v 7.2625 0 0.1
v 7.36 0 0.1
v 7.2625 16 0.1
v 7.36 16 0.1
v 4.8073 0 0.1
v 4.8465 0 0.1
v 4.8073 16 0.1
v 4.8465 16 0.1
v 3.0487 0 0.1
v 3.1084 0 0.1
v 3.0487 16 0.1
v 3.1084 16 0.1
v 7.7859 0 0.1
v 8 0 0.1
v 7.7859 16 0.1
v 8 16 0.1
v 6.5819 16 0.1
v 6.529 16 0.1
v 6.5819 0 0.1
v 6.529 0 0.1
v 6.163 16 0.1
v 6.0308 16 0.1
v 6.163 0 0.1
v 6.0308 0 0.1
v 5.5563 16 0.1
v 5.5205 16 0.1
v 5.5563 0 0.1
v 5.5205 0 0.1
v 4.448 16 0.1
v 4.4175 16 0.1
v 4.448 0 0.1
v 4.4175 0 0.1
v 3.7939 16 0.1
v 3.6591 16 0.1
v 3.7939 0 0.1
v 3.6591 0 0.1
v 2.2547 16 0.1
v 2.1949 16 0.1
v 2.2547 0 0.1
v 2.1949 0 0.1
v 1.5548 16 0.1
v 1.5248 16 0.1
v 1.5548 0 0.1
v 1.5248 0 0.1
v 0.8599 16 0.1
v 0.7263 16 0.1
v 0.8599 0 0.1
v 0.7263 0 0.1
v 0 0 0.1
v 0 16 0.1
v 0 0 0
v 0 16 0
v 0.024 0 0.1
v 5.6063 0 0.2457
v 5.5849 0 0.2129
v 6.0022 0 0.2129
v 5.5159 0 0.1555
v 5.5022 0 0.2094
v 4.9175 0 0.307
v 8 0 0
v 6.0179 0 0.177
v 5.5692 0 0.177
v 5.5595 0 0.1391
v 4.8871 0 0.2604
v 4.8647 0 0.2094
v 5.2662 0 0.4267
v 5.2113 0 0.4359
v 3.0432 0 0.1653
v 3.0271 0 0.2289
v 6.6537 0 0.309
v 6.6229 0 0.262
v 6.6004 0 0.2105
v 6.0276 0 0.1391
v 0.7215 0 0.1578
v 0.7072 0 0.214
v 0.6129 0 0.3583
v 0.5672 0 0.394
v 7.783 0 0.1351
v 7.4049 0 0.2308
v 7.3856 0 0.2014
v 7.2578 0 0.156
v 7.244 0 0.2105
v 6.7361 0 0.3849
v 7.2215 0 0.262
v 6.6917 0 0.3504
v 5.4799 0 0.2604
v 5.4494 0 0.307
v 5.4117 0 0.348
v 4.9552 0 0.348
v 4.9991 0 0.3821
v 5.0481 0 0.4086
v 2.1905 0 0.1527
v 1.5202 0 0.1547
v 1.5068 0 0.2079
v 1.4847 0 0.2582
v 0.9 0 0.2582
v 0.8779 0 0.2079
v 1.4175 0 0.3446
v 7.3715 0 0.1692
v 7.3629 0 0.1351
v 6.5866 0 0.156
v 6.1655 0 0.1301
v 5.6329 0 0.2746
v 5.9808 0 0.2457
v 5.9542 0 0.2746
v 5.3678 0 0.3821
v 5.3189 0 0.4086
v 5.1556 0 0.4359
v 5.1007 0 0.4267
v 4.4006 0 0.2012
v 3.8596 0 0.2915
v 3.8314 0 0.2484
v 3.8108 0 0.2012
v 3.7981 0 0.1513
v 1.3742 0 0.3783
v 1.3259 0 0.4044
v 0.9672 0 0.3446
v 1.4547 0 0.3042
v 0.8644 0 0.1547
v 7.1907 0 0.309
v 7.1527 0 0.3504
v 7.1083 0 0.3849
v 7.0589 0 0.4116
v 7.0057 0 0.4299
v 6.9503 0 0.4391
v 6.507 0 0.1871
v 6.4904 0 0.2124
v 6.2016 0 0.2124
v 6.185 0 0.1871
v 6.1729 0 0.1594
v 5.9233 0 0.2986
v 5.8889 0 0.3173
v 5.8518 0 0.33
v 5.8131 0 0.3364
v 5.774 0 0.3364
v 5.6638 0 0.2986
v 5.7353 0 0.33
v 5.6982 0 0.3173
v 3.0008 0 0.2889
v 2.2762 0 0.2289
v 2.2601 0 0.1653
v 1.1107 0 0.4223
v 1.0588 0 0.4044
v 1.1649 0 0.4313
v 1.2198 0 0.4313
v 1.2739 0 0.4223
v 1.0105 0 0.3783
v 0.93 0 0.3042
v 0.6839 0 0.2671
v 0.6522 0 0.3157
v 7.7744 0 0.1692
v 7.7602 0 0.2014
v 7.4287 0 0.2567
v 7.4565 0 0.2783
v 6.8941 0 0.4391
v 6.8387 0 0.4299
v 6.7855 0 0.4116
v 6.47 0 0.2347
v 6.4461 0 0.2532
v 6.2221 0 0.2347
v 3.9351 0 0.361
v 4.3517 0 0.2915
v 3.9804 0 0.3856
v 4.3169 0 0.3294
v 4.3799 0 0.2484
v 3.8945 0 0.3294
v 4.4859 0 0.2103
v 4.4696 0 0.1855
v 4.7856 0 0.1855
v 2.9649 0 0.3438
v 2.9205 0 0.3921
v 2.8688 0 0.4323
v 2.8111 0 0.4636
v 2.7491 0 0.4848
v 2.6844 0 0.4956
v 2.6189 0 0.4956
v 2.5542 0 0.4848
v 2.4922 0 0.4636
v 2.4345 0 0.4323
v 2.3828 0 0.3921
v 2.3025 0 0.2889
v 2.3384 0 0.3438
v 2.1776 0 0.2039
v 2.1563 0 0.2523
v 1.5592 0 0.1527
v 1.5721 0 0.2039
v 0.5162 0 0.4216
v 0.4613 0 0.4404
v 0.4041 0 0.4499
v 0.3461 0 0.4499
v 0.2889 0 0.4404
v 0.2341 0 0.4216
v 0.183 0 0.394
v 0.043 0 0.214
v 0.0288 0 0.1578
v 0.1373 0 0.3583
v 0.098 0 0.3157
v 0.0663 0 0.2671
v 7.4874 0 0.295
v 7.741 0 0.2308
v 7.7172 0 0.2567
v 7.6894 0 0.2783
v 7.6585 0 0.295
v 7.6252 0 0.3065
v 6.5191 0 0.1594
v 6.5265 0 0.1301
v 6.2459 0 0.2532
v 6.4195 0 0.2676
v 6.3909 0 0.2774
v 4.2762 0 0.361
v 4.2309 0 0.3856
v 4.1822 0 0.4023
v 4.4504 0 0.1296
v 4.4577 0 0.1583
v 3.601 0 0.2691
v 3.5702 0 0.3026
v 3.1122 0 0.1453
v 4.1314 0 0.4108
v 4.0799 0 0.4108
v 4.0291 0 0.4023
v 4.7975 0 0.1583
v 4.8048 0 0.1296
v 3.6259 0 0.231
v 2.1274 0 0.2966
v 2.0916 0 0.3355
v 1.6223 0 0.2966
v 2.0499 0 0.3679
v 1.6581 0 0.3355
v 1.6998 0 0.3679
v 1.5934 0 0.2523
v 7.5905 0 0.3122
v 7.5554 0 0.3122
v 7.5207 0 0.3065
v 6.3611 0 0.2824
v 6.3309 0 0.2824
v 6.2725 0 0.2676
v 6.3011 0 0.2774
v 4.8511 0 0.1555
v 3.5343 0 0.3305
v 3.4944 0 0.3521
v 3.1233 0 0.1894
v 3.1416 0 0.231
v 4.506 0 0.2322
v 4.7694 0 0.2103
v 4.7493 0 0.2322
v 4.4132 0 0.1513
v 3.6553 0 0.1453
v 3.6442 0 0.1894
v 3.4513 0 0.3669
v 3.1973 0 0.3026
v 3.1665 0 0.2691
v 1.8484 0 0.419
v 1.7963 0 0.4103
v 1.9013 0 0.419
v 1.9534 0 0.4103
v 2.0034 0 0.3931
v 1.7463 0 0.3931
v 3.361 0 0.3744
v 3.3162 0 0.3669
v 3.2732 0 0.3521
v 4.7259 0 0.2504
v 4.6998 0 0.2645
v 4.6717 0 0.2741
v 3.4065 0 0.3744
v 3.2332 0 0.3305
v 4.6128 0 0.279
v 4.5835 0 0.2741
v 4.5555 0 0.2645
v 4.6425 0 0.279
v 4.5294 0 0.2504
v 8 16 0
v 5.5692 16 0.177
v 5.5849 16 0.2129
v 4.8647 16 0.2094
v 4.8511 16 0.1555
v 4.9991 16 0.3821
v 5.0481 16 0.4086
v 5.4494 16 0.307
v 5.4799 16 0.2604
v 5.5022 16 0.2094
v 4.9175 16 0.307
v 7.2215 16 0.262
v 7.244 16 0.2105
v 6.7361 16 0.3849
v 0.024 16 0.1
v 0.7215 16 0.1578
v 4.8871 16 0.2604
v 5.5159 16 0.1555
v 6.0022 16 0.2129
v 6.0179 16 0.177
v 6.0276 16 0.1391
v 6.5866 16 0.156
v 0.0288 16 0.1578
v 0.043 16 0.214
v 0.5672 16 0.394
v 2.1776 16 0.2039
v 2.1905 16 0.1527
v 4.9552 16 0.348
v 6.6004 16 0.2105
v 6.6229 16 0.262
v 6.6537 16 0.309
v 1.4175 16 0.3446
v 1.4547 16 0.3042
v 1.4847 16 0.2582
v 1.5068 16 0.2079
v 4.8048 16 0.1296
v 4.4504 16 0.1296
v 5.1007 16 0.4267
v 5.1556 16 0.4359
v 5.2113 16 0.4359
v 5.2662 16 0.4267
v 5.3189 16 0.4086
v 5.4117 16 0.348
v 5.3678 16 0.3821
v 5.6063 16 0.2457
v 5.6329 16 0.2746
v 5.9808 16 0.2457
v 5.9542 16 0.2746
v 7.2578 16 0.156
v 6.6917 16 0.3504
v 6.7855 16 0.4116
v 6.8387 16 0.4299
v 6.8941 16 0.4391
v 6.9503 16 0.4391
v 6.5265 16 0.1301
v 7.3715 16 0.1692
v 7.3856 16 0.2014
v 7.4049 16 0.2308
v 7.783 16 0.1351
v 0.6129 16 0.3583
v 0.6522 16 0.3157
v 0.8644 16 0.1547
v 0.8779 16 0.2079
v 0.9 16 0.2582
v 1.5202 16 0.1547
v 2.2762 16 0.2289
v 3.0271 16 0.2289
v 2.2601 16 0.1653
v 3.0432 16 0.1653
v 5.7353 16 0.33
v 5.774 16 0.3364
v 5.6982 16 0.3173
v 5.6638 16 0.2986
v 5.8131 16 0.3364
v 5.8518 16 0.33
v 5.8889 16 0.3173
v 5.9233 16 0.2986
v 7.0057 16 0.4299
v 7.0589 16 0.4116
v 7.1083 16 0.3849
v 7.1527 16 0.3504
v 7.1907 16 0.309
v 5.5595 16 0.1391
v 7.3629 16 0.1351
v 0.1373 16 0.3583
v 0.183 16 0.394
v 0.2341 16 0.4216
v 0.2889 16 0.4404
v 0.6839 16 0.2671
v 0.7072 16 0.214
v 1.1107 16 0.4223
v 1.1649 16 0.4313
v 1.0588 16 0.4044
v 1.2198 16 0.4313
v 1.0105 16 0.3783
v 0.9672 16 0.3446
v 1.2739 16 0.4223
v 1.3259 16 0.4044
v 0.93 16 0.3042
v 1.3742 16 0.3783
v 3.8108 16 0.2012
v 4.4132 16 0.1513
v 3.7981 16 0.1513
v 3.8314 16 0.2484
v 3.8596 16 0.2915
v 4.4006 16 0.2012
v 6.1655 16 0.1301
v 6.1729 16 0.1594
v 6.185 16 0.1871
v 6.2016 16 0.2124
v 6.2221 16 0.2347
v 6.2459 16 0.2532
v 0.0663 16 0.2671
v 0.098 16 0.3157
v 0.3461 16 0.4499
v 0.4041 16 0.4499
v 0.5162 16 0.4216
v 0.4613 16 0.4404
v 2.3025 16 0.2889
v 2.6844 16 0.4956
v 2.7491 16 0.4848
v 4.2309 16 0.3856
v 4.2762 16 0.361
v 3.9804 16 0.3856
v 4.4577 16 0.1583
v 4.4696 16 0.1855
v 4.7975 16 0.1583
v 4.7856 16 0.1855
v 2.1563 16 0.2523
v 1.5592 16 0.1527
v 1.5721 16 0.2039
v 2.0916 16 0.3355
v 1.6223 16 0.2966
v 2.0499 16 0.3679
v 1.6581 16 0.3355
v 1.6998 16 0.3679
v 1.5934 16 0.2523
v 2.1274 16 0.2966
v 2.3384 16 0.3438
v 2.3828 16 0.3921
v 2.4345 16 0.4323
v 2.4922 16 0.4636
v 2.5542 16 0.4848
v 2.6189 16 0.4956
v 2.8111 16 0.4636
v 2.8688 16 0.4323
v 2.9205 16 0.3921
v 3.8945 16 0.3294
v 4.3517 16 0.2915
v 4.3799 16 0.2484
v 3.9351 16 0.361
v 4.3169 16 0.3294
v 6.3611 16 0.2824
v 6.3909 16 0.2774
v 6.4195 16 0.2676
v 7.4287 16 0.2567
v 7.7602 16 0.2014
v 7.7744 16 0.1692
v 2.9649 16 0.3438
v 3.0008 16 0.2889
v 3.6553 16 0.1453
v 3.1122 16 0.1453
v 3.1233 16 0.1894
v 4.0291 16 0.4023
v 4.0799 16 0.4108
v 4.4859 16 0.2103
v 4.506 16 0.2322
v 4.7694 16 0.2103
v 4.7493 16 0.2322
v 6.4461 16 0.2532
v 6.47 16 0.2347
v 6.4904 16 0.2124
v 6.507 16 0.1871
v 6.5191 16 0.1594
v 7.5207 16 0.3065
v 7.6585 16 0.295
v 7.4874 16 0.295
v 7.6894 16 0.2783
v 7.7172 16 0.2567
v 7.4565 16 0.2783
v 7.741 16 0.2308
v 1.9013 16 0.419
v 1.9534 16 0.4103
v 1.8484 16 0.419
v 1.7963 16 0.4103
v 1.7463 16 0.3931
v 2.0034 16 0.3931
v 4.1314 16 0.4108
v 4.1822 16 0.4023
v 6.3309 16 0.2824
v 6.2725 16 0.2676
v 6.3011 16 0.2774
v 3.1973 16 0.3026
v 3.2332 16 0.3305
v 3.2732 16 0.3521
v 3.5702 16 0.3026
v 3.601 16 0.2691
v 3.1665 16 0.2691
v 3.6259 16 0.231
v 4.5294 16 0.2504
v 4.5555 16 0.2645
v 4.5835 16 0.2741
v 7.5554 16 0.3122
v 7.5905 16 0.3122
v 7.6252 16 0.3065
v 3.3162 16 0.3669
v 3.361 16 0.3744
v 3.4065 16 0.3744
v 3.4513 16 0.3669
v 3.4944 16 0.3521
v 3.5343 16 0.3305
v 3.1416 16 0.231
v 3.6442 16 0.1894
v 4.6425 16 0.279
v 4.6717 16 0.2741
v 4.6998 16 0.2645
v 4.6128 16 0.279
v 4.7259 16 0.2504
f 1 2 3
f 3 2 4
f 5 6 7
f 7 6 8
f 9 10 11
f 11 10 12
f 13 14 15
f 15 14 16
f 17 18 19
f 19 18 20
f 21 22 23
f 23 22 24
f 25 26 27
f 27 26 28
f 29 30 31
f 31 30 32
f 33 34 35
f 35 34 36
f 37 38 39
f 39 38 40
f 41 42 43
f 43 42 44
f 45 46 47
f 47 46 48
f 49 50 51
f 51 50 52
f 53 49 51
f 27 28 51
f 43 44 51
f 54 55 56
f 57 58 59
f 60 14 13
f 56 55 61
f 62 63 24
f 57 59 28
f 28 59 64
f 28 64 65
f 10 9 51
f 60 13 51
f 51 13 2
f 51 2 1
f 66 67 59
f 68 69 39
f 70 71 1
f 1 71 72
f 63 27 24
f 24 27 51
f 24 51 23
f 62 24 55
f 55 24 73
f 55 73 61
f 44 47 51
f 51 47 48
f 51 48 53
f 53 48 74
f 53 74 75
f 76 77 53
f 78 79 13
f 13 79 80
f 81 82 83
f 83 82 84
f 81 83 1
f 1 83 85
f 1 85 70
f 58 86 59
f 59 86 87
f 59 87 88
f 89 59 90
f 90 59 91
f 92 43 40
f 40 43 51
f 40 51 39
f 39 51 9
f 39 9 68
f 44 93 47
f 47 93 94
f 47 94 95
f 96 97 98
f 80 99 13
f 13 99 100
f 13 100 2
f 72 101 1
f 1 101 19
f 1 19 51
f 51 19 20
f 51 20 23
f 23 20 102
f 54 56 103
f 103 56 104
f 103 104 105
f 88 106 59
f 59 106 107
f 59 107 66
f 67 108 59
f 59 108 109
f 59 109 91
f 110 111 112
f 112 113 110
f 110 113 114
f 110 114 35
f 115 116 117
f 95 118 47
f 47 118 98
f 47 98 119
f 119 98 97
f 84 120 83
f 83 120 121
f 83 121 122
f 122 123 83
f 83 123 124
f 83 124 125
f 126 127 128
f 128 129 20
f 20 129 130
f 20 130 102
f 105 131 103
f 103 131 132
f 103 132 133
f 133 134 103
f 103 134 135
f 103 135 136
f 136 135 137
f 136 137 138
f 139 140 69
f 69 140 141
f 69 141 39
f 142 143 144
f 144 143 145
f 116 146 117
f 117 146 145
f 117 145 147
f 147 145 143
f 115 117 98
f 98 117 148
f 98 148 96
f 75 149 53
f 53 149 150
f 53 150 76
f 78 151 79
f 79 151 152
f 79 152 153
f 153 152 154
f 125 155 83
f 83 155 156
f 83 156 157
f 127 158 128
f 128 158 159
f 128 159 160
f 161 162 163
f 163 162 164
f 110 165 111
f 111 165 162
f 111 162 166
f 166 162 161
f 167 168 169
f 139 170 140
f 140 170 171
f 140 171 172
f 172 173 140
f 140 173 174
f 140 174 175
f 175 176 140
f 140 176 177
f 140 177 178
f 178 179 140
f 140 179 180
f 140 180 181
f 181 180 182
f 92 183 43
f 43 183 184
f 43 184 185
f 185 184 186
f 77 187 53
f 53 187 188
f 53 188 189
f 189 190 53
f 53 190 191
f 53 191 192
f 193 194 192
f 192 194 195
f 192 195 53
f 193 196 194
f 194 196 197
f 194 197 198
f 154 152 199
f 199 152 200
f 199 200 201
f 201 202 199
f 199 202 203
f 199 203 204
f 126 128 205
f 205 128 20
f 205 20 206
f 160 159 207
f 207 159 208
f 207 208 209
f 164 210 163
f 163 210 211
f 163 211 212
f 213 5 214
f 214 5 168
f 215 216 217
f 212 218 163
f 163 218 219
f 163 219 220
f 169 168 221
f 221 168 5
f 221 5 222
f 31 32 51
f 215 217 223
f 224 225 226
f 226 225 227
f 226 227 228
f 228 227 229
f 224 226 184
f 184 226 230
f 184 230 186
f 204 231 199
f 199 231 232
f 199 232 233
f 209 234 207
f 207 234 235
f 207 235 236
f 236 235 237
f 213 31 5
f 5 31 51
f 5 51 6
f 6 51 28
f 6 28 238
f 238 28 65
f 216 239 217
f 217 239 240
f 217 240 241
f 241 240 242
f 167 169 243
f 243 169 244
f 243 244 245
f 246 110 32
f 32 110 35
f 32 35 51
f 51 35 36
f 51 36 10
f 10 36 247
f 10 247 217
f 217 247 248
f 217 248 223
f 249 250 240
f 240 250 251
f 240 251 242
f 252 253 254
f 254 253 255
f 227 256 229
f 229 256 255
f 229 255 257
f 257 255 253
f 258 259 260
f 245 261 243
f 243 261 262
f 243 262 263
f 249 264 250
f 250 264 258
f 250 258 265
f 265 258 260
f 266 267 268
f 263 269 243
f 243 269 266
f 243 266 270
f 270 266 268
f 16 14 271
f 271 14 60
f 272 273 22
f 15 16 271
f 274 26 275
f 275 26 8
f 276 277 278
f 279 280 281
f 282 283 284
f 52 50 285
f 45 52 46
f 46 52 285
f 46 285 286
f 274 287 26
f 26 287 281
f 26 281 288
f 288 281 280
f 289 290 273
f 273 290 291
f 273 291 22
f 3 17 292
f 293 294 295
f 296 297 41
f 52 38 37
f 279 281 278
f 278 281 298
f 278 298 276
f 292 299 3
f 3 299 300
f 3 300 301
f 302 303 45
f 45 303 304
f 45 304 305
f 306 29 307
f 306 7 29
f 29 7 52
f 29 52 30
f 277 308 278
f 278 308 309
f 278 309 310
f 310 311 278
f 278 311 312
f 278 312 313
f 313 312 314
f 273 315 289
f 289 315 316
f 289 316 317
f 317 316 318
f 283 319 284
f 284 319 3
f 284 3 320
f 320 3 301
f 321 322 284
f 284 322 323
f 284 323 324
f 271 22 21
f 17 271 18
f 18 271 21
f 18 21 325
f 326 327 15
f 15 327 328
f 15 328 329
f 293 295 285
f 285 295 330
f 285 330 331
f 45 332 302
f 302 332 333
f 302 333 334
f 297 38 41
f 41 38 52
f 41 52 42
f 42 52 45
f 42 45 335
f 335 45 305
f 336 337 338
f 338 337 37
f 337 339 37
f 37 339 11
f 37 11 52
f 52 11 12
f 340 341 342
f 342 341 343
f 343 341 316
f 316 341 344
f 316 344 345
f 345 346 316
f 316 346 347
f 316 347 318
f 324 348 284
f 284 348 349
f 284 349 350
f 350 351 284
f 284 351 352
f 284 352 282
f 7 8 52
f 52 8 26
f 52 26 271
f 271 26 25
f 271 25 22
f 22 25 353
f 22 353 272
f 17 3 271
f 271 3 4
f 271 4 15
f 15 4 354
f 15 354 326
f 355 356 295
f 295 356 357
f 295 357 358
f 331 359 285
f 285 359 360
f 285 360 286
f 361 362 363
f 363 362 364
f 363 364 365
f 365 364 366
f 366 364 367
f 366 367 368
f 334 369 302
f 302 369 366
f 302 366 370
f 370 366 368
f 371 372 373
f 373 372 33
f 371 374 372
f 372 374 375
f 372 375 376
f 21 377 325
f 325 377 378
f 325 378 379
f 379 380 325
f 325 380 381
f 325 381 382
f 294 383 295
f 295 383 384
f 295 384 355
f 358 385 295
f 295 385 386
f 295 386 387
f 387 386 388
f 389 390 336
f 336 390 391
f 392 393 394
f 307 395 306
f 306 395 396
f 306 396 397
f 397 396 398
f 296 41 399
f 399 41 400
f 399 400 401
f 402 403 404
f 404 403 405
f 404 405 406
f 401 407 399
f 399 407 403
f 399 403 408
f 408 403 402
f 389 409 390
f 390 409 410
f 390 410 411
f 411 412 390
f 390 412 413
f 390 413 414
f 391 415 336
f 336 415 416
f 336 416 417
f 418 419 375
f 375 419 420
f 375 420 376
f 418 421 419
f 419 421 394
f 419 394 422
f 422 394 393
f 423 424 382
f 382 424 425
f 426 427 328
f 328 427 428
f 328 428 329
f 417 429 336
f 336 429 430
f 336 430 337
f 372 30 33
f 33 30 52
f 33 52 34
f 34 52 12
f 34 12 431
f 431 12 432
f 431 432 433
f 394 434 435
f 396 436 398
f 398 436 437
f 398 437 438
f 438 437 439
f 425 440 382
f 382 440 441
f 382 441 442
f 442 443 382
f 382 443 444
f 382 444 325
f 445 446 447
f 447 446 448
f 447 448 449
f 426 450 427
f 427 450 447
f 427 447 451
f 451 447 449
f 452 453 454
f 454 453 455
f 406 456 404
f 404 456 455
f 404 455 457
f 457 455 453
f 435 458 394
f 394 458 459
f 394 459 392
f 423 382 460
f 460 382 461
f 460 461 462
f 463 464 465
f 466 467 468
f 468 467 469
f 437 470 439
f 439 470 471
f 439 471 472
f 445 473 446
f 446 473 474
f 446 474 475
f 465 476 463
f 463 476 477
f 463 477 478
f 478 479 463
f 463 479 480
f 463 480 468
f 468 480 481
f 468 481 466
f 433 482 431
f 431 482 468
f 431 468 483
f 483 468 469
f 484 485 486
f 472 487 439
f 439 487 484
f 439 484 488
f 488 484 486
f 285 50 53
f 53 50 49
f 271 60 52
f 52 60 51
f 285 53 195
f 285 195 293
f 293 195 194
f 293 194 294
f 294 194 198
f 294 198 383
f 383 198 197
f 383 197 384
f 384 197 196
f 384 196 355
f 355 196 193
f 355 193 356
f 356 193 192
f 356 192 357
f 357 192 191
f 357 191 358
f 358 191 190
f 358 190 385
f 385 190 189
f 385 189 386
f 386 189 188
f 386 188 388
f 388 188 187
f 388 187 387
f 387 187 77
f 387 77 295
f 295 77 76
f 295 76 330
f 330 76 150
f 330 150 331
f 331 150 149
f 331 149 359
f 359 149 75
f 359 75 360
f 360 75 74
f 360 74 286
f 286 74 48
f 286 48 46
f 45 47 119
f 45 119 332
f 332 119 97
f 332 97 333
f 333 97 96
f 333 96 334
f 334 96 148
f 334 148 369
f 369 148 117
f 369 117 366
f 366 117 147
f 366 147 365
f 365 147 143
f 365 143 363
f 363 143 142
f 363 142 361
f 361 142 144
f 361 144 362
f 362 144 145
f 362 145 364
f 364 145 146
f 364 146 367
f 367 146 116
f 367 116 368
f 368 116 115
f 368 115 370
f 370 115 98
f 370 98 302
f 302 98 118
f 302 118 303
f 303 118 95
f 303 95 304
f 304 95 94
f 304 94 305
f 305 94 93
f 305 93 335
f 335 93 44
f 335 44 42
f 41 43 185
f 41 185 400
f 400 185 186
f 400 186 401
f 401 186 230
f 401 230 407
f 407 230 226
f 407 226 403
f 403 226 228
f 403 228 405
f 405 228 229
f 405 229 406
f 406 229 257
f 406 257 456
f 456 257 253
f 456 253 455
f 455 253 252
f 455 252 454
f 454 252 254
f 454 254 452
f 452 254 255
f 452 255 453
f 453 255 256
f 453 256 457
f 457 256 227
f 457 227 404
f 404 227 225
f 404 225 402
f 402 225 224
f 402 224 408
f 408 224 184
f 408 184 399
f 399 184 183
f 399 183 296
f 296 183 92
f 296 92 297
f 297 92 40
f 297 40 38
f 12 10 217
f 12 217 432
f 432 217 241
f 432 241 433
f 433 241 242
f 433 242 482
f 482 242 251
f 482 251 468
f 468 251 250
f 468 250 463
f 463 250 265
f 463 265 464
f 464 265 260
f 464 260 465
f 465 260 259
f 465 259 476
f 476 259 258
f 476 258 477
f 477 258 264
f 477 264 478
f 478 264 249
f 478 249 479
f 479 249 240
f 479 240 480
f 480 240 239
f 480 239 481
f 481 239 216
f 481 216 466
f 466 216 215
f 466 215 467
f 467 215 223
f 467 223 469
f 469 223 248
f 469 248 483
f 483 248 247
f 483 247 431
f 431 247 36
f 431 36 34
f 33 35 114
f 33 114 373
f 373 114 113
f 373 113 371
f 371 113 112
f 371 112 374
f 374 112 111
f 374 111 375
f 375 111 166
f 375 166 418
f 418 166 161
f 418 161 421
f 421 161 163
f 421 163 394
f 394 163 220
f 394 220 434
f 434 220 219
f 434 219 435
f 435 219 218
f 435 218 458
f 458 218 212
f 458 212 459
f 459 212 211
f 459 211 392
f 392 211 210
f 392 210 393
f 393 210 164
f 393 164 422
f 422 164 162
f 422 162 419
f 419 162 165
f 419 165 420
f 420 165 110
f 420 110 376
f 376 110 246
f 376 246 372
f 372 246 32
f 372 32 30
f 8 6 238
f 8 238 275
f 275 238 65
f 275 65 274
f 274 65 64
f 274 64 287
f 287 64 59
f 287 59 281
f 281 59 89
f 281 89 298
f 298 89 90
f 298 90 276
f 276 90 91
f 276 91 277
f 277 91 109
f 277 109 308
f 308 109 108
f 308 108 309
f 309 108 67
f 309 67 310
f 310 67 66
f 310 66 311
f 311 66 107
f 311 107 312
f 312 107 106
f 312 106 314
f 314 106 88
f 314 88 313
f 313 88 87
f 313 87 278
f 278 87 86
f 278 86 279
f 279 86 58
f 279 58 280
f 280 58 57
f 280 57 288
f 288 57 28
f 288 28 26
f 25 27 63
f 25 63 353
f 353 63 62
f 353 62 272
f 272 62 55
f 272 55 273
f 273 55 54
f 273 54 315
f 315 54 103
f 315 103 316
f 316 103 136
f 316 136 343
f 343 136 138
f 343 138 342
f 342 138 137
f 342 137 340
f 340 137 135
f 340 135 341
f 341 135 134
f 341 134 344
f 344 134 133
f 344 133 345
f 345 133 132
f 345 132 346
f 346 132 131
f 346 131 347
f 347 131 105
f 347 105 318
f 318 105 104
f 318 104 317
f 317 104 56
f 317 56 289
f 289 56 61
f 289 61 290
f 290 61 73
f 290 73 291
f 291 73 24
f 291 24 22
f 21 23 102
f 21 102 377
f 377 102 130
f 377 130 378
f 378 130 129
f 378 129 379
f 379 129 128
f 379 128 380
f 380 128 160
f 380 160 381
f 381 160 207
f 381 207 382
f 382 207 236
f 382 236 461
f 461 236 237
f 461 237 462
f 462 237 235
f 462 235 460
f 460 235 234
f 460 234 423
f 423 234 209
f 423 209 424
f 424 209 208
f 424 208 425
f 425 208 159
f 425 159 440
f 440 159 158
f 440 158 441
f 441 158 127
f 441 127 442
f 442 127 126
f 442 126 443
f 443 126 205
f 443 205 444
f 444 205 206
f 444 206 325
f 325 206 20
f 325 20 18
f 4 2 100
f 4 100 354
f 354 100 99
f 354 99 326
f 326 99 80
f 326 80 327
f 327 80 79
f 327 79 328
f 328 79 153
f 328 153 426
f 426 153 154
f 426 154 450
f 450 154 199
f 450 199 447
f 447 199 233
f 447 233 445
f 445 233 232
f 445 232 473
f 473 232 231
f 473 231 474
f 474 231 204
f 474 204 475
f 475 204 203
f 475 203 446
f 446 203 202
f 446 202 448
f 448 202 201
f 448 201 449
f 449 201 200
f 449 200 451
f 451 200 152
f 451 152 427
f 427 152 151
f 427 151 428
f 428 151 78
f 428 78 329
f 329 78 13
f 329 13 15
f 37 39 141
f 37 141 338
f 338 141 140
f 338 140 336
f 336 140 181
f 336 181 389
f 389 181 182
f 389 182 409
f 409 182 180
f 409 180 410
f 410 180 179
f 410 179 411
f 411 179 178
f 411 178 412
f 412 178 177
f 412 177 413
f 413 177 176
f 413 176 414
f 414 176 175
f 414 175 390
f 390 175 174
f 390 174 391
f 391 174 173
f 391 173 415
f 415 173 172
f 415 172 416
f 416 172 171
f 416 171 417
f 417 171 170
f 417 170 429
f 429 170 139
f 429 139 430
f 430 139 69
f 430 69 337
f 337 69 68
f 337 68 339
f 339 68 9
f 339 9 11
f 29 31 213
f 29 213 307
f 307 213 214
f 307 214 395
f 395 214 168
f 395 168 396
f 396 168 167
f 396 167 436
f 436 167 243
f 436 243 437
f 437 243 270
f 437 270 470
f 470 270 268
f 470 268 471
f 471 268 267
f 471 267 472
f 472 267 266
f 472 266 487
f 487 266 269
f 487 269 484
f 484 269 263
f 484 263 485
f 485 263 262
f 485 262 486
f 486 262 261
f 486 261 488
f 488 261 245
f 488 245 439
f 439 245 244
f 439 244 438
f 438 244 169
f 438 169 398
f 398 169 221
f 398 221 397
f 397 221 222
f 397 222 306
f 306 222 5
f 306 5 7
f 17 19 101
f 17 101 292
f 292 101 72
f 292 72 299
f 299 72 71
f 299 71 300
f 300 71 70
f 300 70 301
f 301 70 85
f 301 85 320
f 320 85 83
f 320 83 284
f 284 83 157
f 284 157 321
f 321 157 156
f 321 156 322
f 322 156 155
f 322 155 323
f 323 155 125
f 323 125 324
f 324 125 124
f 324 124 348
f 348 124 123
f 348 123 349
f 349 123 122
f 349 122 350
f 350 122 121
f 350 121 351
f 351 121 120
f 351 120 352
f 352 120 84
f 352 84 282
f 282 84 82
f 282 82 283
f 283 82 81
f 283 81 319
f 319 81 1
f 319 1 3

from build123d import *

# Parameters (mm, degrees)
SKETCH_1_W          = 8
SKETCH_1_H          = 16
EXTRUDE_1_DEPTH     = 0.1
SKETCH_2_R          = 0.351145055
SKETCH_2_R_2        = 0.320051596
SKETCH_2_R_3        = 0.275332799
SKETCH_2_R_4        = 0.311816498
SKETCH_2_R_5        = 0.337022537
SKETCH_2_R_6        = 0.237251683
SKETCH_2_R_7        = 0.183022727
SKETCH_2_R_8        = 0.212967473
SKETCH_2_R_9        = 0.332451038
SKETCH_2_R_10       = 0.39699232
SKETCH_2_R_11       = 0.179641096
SKETCH_2_R_12       = 0.340279333
EXTRUDE_2_DEPTH     = 16
SKETCH_3_W          = 8
SKETCH_3_H          = 0.451969464
CUT_EXTRUDE_1_DEPTH = 16


with BuildPart() as part:
    # 草图1 → 凸台-拉伸1 (new body)
    with BuildSketch(Plane.XY):
        with Locations((4, 8)):
            Rectangle(SKETCH_1_W, SKETCH_1_H)
    extrude(amount=EXTRUDE_1_DEPTH)

    # 草图2 → 凸台-拉伸2 (add)
    with BuildSketch(Plane.XZ):
        with Locations((0.375106215, 0.1)):
            Circle(SKETCH_2_R)
        with Locations((1.87485289, 0.1)):
            Circle(SKETCH_2_R_2)
        with Locations((3.383753503, 0.1)):
            Circle(SKETCH_2_R_3)
        with Locations((4.105676482, 0.1)):
            Circle(SKETCH_2_R_4)
        with Locations((5.183476985, 0.1)):
            Circle(SKETCH_2_R_5)
        with Locations((5.793552742, 0.1)):
            Circle(SKETCH_2_R_6)
        with Locations((6.346010233, 0.1)):
            Circle(SKETCH_2_R_7)
        with Locations((7.572940366, 0.1)):
            Circle(SKETCH_2_R_8)
        with Locations((1.192332615, 0.1)):
            Circle(SKETCH_2_R_9)
        with Locations((2.651662595, 0.1)):
            Circle(SKETCH_2_R_10)
        with Locations((4.627630185, 0.1)):
            Circle(SKETCH_2_R_11)
        with Locations((6.922192892, 0.1)):
            Circle(SKETCH_2_R_12)
    extrude(amount=-EXTRUDE_2_DEPTH)

    # 草图3 → 切除-拉伸1 (cut)
    with BuildSketch(Plane.XZ):
        with Locations((4, -0.225984732)):
            Rectangle(SKETCH_3_W, SKETCH_3_H)
    extrude(amount=-CUT_EXTRUDE_1_DEPTH, mode=Mode.SUBTRACT)


solid = part.part
